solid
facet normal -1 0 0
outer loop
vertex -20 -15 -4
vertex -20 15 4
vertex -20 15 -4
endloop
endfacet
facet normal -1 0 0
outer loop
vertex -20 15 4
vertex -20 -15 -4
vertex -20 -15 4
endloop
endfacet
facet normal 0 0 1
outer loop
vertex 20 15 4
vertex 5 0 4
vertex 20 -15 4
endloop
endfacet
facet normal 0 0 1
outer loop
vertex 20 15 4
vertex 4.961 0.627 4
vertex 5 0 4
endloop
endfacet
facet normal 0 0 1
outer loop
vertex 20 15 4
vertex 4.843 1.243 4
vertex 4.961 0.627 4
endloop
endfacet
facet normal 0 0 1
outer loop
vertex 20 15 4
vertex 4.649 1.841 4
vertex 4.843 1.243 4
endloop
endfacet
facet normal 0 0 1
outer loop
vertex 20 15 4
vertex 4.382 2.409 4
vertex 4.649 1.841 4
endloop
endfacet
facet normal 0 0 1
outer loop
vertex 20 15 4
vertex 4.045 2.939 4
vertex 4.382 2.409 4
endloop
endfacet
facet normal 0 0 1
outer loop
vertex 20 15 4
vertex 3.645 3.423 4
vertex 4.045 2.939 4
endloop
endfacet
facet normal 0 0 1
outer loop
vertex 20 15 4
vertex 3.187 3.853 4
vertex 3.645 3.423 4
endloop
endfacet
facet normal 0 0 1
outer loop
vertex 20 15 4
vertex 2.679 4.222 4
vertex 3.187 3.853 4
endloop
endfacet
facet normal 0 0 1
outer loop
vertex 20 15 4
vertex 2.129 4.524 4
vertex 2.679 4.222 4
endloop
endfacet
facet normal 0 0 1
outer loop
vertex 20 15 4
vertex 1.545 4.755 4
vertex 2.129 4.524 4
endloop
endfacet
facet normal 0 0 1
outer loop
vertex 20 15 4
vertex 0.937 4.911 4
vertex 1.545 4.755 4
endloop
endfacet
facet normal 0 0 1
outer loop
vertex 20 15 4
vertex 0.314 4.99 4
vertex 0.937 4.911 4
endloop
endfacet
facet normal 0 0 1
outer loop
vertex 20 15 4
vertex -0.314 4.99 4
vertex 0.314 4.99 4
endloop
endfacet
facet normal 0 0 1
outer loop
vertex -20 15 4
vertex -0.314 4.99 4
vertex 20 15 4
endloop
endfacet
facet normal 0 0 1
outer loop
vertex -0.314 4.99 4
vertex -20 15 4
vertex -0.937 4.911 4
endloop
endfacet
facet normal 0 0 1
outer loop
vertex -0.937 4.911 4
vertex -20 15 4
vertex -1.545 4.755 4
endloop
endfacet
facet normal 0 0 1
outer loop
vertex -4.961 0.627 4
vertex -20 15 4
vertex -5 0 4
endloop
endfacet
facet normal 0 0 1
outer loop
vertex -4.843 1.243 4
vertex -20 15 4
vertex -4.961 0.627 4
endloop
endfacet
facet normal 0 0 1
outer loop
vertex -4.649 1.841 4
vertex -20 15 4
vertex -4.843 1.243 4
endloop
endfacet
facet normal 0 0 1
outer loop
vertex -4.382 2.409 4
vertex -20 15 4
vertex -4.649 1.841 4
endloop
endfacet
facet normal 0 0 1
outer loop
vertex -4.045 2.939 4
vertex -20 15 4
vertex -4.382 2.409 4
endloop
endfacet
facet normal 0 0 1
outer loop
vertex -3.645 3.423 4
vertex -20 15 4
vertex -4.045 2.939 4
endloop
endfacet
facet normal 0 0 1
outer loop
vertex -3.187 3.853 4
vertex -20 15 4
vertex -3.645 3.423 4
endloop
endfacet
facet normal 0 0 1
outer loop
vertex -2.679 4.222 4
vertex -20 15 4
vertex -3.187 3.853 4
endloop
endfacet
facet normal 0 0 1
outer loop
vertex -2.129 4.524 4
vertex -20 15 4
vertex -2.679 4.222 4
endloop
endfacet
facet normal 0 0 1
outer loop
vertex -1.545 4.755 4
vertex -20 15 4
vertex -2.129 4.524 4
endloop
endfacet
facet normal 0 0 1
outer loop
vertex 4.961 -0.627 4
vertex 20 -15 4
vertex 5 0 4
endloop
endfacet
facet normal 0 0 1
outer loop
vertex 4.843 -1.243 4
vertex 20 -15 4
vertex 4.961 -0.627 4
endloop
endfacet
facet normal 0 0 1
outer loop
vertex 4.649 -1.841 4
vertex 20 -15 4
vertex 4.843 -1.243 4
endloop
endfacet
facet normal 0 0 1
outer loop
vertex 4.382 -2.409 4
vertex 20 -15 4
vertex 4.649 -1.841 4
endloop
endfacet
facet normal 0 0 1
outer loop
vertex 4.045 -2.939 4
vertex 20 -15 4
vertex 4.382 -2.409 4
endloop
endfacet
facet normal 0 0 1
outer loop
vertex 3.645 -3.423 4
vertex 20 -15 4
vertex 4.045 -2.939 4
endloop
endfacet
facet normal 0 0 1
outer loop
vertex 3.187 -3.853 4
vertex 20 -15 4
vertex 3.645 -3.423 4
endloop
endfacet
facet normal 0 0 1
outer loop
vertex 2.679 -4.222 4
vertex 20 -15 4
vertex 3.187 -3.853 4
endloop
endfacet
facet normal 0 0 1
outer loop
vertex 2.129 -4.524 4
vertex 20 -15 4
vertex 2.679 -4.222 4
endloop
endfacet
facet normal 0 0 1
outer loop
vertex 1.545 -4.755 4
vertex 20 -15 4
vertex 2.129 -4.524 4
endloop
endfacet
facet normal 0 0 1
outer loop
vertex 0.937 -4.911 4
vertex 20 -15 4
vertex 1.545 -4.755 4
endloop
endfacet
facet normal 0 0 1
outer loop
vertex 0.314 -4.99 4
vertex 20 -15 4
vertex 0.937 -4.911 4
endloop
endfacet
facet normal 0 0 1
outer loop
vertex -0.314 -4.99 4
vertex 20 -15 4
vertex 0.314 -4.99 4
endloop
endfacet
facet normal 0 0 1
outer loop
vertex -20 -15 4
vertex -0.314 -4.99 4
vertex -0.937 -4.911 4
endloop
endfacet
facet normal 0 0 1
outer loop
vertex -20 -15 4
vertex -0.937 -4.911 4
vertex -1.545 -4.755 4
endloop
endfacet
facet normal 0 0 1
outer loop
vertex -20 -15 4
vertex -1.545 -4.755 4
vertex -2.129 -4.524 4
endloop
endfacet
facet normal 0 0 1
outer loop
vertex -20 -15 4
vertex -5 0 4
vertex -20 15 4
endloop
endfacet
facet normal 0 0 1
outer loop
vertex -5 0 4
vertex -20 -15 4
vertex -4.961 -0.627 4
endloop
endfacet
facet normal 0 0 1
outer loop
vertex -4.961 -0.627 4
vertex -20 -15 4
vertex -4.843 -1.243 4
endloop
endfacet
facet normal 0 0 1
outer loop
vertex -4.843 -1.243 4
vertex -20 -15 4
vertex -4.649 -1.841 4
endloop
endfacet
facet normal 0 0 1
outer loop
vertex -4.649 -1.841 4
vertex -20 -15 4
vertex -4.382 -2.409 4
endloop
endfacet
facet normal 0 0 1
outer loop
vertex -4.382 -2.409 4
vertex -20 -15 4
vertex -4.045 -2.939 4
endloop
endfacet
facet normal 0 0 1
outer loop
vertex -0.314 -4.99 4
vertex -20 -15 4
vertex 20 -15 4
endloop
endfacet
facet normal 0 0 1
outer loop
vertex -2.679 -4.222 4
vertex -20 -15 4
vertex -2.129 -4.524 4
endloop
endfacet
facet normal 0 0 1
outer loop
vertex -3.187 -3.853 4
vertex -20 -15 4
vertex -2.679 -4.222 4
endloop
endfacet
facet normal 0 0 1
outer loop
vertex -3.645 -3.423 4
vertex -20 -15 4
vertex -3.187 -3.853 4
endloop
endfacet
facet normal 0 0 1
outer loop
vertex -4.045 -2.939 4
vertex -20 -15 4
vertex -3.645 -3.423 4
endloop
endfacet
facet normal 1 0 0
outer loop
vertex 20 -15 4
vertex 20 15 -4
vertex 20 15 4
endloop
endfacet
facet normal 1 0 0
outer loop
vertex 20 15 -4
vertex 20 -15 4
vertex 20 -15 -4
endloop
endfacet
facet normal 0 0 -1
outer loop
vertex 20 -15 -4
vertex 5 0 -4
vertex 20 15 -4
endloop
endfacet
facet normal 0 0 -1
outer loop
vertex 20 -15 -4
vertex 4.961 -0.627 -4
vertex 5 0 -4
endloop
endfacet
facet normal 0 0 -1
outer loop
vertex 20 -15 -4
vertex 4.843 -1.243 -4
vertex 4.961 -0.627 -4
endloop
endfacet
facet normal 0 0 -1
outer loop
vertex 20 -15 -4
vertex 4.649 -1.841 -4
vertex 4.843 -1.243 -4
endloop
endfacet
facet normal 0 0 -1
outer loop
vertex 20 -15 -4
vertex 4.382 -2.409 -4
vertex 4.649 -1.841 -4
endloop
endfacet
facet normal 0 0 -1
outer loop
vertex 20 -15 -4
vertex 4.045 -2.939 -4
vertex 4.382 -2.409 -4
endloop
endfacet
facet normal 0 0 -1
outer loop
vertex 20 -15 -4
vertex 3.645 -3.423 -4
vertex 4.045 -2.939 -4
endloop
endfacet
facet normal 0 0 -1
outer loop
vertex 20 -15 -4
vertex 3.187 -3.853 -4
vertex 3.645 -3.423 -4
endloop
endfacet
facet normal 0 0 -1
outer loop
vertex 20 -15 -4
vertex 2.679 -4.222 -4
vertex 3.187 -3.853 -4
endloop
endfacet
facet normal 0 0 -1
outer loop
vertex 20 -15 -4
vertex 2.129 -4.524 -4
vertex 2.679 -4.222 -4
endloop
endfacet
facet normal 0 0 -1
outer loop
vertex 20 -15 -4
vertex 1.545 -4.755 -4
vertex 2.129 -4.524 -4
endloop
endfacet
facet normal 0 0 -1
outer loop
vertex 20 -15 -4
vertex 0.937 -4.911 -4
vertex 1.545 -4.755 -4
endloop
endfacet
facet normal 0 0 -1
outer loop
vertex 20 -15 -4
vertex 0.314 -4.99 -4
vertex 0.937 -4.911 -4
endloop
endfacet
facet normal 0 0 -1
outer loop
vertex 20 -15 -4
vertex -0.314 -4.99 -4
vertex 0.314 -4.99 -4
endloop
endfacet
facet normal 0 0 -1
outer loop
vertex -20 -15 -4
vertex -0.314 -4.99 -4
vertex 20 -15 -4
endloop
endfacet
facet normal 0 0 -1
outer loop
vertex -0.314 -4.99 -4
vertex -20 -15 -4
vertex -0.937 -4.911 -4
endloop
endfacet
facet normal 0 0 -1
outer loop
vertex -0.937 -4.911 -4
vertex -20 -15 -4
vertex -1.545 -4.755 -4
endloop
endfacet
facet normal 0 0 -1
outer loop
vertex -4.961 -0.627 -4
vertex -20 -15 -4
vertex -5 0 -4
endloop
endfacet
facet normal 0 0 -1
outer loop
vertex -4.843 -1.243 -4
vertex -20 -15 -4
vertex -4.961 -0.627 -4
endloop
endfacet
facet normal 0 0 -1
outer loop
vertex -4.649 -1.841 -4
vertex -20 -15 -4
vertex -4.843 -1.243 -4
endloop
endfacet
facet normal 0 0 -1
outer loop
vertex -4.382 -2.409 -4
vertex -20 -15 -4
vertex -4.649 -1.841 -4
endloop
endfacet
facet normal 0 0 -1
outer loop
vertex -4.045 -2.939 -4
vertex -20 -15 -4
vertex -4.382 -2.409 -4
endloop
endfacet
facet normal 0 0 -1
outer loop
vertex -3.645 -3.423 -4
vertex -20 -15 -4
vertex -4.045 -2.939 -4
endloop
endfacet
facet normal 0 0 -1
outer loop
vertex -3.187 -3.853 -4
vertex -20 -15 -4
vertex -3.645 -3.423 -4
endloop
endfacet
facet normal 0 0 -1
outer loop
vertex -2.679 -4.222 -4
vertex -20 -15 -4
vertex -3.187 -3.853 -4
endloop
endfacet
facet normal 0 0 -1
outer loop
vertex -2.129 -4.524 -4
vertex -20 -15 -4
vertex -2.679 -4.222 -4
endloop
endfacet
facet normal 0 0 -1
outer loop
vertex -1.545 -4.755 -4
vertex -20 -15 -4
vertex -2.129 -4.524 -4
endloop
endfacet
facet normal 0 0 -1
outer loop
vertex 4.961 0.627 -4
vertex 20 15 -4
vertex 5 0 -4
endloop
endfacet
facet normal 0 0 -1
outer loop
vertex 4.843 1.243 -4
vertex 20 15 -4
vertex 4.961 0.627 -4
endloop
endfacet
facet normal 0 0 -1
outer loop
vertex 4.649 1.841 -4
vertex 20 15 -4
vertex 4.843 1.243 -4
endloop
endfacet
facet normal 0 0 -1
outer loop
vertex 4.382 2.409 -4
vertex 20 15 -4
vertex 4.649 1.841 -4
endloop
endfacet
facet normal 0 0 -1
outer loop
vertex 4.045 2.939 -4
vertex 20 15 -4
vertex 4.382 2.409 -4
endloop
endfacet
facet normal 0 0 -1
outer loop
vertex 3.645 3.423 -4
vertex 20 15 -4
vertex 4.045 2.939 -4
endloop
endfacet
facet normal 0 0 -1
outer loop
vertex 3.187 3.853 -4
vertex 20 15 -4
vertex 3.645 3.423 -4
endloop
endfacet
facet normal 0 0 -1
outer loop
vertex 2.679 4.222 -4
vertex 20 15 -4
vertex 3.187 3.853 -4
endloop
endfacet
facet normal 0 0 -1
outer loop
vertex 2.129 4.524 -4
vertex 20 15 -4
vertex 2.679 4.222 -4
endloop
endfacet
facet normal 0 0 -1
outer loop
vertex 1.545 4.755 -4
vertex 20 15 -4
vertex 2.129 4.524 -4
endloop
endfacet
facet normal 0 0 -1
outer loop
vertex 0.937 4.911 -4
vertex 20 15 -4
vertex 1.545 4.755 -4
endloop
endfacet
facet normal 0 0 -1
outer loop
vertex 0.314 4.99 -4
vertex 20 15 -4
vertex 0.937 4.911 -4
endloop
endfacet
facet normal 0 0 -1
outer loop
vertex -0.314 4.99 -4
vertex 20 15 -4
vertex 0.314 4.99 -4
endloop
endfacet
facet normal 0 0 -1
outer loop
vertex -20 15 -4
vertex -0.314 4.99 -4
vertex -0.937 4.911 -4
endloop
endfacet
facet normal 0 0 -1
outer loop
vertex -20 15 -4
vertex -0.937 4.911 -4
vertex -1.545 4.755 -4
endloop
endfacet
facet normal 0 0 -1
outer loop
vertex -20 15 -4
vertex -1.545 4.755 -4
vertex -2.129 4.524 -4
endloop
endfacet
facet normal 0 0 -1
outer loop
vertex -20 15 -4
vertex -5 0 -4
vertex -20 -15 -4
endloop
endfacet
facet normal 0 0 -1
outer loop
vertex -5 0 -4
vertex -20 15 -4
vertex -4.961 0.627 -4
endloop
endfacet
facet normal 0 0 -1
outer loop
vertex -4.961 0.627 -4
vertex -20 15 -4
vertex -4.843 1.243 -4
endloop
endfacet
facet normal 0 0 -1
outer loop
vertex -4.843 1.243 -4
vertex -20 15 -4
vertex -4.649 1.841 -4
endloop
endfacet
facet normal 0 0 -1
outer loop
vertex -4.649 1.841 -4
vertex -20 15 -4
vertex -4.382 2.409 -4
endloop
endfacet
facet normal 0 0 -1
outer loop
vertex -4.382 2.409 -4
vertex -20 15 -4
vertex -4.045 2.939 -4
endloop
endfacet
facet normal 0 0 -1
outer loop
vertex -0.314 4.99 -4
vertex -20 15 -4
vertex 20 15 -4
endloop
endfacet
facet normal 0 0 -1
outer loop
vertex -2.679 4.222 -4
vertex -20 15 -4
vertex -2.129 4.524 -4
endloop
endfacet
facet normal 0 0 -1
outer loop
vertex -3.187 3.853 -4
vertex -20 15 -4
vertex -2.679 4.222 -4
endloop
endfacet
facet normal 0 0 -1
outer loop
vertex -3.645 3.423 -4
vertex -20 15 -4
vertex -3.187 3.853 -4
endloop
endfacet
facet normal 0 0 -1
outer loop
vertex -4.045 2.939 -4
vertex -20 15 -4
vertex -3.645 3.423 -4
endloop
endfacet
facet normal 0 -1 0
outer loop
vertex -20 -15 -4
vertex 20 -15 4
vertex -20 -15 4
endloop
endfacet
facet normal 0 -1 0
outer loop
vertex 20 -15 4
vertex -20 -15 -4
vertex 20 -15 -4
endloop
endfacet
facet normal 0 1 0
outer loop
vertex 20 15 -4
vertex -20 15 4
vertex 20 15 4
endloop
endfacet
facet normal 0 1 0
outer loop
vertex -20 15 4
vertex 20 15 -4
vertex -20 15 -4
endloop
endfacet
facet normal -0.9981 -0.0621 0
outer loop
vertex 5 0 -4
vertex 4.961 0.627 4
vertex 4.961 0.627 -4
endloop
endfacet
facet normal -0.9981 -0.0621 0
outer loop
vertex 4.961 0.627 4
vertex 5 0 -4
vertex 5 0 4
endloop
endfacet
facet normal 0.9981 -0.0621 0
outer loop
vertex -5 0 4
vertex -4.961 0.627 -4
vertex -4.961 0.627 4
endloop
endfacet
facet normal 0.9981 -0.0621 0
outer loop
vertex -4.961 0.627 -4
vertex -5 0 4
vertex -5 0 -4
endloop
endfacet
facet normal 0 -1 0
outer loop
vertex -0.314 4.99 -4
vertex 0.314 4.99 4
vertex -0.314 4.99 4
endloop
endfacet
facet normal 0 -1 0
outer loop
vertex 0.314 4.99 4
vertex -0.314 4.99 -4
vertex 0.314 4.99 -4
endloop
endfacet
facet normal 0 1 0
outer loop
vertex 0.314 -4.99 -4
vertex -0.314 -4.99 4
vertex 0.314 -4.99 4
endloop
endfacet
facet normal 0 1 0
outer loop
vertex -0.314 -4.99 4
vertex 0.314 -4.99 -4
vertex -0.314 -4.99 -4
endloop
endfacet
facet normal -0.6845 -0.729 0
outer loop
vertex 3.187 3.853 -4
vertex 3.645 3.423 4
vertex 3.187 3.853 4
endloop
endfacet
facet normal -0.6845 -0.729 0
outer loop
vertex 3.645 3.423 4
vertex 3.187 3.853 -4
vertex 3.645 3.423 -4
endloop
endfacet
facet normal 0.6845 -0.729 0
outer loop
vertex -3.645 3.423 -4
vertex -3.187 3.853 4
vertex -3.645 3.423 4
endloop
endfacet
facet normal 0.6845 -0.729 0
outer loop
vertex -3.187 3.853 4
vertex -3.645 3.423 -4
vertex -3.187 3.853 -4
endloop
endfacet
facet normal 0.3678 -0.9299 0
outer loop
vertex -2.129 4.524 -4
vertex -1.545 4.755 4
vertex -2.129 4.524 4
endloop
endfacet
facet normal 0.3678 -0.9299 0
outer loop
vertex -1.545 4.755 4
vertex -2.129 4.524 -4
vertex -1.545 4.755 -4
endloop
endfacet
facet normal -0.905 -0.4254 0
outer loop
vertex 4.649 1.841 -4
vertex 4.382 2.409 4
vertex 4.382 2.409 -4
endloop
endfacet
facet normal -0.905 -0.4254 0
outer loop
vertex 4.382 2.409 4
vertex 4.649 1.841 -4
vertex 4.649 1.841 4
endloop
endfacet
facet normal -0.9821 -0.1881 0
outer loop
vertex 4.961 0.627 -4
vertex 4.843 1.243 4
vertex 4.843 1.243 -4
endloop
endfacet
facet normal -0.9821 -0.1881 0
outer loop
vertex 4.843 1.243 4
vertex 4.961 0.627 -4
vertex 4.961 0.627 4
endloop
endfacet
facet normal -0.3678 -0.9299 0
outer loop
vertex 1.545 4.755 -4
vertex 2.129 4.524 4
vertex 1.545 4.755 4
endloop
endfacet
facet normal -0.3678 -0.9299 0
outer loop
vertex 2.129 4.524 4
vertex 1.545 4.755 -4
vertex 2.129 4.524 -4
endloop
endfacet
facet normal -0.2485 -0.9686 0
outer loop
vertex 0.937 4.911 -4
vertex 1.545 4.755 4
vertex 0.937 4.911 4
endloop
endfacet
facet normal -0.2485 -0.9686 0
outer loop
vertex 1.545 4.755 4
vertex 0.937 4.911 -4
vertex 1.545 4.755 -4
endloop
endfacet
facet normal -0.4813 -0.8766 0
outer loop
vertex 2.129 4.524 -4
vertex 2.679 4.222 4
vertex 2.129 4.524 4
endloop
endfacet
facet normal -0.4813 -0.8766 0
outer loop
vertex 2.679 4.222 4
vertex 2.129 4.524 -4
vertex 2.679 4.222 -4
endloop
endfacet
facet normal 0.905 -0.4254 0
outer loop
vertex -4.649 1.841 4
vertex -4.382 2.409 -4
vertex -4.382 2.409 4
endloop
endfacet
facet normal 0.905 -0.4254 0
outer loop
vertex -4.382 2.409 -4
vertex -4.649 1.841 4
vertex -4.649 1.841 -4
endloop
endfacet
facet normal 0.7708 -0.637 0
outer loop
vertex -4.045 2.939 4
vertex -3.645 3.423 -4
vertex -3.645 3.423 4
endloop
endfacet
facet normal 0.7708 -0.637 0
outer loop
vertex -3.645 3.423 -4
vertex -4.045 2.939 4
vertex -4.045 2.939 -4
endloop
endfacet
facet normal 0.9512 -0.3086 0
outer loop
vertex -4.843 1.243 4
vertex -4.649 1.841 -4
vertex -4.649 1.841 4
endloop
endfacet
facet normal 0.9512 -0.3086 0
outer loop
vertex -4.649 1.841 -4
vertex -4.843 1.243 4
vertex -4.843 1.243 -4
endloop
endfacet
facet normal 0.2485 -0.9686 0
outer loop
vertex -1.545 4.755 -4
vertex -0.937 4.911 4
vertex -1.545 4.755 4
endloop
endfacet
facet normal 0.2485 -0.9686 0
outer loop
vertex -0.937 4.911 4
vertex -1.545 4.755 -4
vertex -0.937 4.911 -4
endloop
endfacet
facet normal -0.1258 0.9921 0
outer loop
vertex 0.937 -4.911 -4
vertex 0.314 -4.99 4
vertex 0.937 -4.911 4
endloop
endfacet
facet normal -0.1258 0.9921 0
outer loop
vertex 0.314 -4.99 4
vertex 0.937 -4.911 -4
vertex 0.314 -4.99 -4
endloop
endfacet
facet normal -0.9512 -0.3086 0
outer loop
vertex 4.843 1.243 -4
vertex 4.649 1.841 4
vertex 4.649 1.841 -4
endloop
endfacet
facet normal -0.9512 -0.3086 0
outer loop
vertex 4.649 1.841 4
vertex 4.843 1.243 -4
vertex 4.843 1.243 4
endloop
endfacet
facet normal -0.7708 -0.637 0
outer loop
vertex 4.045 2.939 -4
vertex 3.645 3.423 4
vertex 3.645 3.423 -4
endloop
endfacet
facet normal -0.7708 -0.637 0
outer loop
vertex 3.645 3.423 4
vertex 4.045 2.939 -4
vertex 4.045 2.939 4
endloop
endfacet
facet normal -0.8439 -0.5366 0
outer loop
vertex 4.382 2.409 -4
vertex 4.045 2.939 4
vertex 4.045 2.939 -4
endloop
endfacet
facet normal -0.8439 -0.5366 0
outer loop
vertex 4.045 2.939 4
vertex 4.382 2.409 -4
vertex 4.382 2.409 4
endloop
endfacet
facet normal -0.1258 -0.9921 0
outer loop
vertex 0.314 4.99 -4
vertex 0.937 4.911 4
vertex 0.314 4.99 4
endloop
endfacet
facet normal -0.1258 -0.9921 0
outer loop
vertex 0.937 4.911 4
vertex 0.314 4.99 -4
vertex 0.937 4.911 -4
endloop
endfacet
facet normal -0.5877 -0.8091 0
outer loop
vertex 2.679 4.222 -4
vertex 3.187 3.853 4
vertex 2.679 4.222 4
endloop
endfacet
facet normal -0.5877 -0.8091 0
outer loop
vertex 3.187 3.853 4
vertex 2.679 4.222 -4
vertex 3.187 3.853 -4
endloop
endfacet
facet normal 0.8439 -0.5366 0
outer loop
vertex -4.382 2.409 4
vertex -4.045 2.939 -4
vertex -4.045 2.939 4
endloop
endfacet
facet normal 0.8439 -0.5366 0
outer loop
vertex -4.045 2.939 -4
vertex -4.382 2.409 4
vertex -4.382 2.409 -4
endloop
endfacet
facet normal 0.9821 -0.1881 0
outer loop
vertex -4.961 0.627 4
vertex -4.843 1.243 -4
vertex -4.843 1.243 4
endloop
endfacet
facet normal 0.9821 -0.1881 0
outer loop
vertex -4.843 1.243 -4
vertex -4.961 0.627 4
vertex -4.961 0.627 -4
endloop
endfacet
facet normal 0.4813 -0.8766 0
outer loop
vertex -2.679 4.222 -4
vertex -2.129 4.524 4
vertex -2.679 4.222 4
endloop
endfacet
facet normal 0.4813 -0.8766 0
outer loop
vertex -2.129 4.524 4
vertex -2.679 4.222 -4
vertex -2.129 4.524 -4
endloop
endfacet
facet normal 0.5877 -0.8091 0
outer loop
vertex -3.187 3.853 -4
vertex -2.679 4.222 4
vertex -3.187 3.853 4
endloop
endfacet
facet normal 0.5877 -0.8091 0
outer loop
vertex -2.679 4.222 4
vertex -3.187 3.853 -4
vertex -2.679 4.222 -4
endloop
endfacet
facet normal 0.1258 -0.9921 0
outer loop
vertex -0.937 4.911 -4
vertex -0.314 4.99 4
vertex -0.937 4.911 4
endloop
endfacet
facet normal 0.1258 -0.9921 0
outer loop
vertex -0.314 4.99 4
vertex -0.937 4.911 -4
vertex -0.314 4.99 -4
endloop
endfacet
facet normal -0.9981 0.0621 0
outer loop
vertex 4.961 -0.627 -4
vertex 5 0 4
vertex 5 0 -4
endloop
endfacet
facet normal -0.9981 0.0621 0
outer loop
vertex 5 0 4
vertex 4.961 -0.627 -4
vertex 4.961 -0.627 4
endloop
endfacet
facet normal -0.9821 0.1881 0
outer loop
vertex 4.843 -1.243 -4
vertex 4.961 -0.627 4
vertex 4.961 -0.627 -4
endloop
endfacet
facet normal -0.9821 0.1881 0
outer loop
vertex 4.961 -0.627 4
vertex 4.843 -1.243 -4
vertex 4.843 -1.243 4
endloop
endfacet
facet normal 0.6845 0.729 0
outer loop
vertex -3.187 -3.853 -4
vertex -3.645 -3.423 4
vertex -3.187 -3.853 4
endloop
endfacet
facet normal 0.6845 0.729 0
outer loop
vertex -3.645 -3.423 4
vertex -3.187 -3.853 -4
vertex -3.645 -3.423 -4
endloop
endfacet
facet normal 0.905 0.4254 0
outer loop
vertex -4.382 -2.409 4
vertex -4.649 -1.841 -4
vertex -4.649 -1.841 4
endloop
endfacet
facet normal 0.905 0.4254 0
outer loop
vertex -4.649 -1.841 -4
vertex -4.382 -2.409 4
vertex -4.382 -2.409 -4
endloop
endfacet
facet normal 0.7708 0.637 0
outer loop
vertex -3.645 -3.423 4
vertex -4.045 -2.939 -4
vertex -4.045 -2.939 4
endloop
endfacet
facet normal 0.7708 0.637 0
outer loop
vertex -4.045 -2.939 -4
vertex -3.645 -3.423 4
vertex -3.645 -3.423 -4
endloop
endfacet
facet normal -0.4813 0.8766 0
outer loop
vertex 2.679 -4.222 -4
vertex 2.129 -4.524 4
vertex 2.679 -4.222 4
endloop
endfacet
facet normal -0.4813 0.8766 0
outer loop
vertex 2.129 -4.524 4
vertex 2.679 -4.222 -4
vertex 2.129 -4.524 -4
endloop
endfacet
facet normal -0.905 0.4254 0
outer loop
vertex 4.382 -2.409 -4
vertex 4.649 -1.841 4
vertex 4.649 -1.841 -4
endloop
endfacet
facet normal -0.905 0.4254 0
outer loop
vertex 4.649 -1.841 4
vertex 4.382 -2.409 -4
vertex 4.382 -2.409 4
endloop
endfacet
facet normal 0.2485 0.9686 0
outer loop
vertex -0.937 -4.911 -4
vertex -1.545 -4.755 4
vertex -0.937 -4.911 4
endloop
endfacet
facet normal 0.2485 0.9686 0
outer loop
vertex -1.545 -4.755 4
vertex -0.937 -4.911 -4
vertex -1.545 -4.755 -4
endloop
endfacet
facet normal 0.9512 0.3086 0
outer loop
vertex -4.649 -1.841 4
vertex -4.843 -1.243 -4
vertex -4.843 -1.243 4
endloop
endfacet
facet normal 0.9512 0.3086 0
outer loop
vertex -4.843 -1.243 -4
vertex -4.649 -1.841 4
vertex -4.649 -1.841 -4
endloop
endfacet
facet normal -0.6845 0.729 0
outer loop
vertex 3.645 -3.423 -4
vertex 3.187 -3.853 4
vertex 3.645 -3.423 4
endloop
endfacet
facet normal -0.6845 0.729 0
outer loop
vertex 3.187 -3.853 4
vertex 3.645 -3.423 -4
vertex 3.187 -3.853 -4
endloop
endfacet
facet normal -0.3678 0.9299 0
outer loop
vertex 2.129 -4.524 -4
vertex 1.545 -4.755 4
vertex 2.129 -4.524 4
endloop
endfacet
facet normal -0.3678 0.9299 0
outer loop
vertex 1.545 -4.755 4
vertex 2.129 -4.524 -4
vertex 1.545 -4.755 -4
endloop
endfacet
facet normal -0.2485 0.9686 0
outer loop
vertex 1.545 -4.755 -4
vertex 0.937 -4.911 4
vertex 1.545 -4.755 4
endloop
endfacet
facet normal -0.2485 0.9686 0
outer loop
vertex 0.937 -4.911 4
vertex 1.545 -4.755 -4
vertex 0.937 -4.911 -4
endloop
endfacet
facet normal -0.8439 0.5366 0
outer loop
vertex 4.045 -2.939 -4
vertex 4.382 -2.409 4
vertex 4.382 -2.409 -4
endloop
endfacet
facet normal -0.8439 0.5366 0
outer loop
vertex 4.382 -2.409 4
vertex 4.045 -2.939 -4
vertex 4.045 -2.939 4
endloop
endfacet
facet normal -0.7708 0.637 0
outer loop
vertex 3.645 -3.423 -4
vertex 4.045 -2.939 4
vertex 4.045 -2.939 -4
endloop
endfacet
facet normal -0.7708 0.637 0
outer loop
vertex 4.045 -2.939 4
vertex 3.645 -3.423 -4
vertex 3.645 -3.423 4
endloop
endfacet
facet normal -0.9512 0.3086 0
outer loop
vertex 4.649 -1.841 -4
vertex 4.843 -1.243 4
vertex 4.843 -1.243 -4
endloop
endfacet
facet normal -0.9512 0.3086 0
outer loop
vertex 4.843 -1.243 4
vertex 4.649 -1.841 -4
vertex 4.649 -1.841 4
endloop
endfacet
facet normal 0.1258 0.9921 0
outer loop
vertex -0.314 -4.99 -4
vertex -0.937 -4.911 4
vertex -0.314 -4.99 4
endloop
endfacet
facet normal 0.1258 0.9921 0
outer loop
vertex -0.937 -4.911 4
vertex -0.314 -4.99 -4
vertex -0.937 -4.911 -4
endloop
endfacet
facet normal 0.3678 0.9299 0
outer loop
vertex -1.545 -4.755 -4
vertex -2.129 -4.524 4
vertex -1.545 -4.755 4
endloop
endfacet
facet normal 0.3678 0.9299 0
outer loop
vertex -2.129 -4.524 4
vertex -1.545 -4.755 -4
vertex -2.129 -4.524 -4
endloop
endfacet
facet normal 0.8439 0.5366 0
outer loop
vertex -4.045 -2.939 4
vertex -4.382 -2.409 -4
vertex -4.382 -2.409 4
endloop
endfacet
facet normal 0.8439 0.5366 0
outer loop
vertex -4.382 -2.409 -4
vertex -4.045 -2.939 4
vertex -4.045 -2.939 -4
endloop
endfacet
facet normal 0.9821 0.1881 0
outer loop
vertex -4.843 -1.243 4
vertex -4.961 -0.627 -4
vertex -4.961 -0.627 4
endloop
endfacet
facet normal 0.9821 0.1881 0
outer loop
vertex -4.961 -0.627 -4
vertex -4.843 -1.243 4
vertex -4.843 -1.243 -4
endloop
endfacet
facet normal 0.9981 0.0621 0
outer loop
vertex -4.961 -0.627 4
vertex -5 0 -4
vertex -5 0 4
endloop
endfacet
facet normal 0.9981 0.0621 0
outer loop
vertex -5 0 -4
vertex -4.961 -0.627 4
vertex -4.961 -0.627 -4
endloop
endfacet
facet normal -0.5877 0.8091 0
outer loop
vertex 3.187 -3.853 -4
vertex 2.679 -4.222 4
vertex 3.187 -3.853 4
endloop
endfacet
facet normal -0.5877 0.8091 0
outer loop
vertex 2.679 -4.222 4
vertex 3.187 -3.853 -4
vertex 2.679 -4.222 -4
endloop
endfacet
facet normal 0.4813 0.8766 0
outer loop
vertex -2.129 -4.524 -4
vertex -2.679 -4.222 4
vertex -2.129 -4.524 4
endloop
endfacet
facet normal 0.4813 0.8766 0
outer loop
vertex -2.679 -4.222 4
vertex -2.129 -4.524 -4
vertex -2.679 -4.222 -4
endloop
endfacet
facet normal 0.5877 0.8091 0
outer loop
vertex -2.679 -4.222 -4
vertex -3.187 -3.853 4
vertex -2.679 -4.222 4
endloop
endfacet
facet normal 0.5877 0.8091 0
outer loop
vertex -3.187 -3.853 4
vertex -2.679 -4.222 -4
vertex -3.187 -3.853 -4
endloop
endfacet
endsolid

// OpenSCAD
// Rectangular plate with centered hole
difference() {
    // Base rectangular plate
    cube([40, 30, 8], center = true);
    
    // Cylindrical hole along Z axis
    cylinder(h = 10, d = 10, center = true, $fn = 50);
}
